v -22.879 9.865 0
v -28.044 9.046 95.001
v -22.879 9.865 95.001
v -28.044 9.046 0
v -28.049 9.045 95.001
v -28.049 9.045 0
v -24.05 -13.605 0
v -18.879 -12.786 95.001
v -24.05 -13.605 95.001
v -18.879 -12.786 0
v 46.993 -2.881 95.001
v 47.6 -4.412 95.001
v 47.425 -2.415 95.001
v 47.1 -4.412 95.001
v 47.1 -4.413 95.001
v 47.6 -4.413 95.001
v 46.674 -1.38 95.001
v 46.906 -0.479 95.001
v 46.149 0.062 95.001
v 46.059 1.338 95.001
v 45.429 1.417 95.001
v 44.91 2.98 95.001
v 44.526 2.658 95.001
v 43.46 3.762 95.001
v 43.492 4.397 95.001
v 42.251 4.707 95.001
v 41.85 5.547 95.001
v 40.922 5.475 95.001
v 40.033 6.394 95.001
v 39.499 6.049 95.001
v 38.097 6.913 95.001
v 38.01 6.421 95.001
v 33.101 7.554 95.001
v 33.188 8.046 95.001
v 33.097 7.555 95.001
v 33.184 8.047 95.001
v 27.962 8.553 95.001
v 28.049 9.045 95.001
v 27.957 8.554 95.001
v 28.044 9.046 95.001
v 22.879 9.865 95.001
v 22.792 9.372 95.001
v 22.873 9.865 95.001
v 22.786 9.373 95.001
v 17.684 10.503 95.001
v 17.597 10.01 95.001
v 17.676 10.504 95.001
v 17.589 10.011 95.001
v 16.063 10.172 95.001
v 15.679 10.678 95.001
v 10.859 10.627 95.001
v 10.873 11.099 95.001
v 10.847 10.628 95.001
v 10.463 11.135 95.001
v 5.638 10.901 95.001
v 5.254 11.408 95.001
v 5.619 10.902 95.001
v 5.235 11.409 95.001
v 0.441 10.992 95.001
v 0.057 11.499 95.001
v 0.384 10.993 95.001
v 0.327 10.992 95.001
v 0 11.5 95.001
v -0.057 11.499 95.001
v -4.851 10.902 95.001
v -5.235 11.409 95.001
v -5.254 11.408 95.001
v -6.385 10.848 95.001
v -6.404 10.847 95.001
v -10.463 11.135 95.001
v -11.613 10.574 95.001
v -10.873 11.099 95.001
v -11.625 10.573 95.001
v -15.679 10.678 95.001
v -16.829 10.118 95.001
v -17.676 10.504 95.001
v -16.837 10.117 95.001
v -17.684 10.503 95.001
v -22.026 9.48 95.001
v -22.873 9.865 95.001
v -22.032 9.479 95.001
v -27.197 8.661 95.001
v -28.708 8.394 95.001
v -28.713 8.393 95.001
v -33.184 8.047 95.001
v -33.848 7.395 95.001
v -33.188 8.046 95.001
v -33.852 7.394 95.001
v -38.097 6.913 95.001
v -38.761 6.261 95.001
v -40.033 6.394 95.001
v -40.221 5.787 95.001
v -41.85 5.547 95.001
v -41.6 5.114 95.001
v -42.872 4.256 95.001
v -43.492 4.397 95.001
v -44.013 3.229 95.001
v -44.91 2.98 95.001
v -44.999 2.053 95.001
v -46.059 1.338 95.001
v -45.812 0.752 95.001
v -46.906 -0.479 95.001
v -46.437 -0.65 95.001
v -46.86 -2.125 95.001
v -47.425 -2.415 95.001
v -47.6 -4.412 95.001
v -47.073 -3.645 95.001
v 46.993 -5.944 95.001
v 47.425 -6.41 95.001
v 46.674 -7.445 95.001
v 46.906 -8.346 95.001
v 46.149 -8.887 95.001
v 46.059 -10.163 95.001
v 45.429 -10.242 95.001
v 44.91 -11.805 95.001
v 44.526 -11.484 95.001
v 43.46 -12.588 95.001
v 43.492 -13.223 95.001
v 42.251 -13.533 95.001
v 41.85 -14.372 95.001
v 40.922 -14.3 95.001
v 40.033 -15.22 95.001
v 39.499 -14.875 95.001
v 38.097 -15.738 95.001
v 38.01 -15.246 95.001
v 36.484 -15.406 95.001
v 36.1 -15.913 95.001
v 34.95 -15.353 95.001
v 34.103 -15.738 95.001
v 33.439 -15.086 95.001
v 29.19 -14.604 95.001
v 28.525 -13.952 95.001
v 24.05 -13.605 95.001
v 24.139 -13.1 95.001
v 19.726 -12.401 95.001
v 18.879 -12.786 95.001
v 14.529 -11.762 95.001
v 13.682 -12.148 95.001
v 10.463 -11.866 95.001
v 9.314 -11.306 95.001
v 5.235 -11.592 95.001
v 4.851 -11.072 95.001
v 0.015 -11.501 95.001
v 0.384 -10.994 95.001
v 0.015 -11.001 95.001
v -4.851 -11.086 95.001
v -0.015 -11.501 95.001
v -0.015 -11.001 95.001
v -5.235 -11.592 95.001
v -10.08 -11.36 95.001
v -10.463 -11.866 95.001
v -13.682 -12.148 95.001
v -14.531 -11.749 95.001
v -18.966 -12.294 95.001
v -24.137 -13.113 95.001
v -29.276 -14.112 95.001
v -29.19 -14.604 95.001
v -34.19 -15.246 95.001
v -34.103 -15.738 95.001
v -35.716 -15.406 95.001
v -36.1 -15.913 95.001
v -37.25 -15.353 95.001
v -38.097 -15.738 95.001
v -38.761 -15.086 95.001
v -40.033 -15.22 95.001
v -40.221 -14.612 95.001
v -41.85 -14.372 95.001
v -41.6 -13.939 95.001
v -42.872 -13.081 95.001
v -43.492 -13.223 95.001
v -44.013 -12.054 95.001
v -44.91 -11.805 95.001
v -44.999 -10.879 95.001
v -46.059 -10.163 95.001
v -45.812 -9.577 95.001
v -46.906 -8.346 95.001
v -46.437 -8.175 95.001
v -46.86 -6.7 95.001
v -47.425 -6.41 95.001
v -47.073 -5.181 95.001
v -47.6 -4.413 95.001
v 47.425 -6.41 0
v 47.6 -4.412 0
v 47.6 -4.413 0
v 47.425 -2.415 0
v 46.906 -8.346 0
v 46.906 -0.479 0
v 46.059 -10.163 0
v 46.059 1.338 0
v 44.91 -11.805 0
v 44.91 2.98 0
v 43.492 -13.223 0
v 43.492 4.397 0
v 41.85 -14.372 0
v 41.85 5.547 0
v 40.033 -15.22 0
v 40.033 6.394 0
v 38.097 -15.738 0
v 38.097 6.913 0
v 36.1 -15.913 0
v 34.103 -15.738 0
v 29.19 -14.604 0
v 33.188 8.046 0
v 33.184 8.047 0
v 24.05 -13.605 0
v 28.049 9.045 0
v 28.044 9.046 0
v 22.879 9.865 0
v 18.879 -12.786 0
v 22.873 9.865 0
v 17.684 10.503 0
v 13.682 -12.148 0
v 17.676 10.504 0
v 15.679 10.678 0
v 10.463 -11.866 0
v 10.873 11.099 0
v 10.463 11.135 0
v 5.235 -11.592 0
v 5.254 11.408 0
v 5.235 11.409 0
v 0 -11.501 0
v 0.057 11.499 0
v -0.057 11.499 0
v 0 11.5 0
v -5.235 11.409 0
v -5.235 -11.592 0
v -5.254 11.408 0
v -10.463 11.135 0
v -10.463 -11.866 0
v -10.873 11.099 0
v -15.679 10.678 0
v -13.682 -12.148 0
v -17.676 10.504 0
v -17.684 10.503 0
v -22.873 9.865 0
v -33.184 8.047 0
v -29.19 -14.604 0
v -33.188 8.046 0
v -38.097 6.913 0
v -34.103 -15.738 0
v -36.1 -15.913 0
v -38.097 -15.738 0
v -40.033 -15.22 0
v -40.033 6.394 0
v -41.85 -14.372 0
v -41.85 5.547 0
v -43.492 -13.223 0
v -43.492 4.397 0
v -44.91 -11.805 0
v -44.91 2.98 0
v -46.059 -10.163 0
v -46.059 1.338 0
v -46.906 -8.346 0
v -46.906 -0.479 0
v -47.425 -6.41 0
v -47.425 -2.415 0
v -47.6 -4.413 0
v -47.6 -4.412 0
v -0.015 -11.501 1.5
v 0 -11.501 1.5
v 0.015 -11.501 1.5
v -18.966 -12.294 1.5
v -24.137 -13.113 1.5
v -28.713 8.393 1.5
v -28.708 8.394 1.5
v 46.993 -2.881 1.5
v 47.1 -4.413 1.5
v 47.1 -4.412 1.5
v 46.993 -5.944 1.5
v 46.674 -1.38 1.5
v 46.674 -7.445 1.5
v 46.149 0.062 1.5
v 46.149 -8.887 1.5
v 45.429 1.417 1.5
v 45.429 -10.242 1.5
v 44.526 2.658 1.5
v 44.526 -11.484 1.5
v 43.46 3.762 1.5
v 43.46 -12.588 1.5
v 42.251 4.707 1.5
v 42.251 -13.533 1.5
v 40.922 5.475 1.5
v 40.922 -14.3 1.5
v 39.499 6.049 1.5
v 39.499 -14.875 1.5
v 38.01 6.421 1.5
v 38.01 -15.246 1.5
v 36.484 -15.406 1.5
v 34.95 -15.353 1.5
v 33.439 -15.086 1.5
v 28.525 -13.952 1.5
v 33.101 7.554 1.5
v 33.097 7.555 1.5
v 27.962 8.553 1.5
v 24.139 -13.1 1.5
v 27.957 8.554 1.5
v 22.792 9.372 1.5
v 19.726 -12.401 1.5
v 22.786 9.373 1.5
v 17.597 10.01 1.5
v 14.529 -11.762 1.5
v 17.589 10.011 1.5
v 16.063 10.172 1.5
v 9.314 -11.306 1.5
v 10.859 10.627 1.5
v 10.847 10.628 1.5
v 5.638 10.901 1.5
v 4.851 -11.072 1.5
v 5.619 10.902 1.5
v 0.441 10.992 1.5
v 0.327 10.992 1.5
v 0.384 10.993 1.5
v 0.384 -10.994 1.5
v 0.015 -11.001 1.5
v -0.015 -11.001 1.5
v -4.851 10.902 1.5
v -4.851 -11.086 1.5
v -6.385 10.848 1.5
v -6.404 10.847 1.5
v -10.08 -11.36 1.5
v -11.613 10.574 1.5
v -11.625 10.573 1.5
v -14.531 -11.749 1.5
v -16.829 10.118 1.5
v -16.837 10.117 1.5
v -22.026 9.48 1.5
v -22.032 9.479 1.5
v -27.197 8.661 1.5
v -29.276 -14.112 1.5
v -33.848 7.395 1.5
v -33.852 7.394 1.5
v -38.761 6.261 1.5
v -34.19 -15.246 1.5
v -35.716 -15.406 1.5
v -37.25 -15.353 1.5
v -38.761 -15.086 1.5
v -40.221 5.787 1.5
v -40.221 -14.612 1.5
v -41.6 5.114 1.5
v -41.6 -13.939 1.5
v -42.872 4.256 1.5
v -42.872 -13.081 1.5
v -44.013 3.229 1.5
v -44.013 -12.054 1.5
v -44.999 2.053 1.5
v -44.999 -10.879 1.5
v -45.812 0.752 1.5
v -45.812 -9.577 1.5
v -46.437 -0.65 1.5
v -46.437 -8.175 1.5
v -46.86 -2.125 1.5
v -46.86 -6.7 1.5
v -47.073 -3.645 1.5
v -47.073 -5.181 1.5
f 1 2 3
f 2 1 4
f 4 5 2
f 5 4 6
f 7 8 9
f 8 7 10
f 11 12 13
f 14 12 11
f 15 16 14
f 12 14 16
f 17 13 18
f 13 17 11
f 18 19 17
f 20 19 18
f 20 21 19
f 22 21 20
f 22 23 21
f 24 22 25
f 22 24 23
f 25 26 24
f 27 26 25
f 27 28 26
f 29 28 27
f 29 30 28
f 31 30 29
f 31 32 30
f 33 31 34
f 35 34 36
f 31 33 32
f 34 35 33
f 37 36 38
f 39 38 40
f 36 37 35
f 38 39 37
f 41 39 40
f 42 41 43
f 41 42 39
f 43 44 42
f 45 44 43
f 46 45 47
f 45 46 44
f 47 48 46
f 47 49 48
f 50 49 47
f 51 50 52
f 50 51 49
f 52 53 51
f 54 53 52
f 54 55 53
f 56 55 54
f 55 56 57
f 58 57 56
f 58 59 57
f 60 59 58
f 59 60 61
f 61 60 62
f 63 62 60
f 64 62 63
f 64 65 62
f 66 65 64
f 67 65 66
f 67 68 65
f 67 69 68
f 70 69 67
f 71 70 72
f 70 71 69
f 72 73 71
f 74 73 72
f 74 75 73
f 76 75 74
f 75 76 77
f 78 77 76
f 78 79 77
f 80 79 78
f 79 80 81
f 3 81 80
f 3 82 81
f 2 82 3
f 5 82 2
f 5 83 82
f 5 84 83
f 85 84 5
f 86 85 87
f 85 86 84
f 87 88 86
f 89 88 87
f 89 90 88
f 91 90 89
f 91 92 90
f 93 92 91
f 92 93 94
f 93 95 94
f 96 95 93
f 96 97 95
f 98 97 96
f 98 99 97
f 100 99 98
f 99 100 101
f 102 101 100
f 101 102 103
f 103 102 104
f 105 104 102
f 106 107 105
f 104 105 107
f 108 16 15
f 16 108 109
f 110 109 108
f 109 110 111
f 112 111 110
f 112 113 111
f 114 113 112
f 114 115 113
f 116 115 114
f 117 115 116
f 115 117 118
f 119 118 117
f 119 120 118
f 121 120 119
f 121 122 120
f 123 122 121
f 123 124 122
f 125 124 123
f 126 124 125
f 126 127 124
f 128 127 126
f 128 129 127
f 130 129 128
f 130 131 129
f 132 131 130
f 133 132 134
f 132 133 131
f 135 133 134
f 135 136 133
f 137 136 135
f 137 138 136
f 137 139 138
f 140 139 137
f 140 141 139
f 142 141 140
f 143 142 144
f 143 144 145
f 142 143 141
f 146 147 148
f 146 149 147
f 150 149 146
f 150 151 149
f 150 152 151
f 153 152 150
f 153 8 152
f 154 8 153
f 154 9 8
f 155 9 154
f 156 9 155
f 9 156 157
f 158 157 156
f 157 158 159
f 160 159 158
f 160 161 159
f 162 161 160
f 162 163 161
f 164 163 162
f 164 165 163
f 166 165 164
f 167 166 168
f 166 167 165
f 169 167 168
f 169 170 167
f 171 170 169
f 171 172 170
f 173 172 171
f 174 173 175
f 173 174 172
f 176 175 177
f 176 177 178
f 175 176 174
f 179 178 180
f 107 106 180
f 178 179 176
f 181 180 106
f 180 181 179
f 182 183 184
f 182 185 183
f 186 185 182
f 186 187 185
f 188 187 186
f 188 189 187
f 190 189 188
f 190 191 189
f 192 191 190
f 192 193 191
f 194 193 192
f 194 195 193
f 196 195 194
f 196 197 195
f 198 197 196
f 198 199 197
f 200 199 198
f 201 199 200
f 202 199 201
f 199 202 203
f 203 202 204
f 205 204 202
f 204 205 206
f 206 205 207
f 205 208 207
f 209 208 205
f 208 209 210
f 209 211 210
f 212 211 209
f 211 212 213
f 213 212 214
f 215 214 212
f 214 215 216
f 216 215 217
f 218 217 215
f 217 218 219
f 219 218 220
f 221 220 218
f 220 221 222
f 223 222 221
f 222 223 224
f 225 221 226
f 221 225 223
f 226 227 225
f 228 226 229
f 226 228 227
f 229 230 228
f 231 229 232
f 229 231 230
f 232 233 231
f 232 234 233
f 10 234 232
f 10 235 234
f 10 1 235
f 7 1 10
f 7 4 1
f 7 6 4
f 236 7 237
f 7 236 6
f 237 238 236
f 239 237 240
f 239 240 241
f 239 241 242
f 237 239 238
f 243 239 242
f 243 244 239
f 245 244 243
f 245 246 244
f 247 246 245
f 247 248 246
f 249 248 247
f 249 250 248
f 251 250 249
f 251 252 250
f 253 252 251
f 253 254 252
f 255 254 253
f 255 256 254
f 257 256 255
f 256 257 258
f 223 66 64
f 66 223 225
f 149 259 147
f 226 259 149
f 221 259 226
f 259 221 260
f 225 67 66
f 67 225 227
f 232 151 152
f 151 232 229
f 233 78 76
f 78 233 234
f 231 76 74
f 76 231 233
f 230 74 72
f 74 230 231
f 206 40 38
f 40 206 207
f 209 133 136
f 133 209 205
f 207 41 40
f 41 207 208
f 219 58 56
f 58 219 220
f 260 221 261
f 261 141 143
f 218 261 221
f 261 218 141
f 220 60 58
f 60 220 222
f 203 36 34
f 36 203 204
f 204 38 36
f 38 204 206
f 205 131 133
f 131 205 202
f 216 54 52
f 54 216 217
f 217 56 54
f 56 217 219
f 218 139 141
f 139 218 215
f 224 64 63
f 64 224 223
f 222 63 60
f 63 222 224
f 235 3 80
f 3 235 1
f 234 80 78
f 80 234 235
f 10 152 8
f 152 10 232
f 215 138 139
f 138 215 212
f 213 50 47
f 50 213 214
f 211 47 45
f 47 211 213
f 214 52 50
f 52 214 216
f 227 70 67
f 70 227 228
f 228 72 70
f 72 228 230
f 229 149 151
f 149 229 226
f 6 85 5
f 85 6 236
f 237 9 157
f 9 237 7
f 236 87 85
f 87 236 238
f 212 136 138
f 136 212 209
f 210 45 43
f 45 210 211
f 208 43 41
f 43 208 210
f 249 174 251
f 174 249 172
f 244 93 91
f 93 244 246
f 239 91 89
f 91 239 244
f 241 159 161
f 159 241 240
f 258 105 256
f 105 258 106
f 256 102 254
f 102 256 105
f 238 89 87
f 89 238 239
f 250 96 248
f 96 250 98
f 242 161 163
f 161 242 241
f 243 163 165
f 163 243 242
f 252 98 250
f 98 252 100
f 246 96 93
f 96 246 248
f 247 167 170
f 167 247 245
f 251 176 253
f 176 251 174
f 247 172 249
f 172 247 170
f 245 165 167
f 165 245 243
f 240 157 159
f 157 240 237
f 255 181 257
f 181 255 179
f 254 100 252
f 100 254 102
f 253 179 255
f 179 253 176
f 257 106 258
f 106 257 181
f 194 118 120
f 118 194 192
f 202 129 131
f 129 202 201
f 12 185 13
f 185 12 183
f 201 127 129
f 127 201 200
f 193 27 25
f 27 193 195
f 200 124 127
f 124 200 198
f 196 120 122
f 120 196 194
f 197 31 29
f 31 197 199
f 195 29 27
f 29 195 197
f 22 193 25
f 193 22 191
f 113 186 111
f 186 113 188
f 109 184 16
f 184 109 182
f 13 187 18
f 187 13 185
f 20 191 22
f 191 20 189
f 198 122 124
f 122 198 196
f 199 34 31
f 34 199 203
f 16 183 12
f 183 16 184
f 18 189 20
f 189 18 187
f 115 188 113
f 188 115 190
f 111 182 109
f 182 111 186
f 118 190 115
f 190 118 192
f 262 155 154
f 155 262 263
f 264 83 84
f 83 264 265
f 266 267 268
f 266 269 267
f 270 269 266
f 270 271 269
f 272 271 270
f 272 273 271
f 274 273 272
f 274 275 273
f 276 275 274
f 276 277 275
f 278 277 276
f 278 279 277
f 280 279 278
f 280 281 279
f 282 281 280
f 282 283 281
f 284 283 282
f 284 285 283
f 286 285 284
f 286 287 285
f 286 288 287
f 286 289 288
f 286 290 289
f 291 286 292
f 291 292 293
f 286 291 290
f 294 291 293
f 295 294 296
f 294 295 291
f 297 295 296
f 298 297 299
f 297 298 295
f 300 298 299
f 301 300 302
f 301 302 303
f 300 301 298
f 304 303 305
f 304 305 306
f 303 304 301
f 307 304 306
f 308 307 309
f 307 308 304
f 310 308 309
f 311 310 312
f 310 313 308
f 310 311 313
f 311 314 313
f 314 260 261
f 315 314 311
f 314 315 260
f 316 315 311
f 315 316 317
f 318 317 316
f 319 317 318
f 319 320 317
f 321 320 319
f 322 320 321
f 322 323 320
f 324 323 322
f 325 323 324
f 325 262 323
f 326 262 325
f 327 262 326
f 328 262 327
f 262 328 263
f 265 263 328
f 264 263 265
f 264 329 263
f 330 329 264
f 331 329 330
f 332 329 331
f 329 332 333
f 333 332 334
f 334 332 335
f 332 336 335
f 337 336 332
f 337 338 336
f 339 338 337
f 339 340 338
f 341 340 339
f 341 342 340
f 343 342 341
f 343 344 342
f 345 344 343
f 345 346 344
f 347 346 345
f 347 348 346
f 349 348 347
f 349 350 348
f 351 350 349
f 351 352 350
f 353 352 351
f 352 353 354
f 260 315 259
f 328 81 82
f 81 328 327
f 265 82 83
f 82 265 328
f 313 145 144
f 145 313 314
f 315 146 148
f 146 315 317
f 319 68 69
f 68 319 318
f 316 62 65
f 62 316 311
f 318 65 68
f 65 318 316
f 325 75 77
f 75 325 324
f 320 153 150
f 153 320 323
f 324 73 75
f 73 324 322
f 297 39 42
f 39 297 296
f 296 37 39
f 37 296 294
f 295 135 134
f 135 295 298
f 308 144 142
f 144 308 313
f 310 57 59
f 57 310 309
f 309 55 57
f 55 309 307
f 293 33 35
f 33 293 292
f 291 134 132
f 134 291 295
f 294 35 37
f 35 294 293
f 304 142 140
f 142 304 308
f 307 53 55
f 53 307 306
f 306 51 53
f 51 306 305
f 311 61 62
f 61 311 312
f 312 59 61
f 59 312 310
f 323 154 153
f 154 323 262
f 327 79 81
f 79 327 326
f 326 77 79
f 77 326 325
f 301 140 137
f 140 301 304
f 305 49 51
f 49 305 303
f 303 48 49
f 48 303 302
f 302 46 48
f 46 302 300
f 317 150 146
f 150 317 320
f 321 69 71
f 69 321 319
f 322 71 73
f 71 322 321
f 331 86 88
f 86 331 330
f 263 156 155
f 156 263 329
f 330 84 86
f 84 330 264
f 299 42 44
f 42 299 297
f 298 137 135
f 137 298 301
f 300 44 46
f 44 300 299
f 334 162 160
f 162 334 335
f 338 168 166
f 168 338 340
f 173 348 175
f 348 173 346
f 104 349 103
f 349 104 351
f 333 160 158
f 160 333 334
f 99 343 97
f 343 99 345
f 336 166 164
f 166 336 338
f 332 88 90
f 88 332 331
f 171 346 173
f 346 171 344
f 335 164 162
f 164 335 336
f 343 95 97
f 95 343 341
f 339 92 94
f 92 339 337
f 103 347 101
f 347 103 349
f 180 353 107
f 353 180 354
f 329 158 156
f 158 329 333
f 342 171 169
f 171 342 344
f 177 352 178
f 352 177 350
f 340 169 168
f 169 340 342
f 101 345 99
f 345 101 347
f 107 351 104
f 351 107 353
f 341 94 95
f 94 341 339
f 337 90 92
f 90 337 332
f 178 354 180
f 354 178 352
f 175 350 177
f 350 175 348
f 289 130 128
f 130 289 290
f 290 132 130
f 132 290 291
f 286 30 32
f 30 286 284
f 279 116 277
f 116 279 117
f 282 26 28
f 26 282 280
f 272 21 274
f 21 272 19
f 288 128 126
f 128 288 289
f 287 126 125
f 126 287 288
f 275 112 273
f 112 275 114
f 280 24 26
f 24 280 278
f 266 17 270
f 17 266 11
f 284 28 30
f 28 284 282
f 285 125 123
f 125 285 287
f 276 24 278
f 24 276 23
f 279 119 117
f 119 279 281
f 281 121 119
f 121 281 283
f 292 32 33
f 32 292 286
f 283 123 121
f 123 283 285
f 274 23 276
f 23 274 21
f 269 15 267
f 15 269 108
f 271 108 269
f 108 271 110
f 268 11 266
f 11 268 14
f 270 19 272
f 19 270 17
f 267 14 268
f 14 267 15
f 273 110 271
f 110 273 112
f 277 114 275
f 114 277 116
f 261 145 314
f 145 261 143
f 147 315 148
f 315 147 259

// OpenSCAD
LENGTH    =  93 +2.3 -1.1;
WIDTH     =  22;
HEIGHT    =  95 +1   -1;
THICKNESS =   1.5;
THICKNESS_W = 0.5;

R         = 150;

ATOM = 0.001;

fn = $preview ? 50: 180;
$fn = fn;

module spine() {
    translate([0, -R, 0])
    intersection() {
        difference() {
            cylinder(r=R, h=HEIGHT);
            cylinder(r=R-ATOM, h=HEIGHT*3, center=true);
        }
        
        translate([0, R*.75, 0])
        cube([LENGTH-WIDTH, R, HEIGHT*3], center=true);
    }
}

module body() {
    difference() {
        minkowski() {
            spine();
            cylinder(d=WIDTH + THICKNESS_W*2, h=ATOM, $fn=fn/5);
        }

        translate([0, 0, THICKNESS])
        minkowski() {
            spine();
            cylinder(d=WIDTH, h=ATOM, $fn=fn/4);
        }

if(0)
        translate([0, 0, -THICKNESS])
        minkowski() {
            spine();
            cylinder(d=WIDTH - THICKNESS, h=ATOM, $fn=fn/4);
        }

    }
}

SLIT = 3;

module mesher() {
    dx = (LENGTH-WIDTH) / 2;
    nx = 6;
    h = HEIGHT*.965 / 2;
    for (i=[0:4]) {
        for (j=[-nx/3-.5:nx/3+.5]) {
            translate([dx/nx*j  -SLIT/2, -WIDTH, h/2*(i-abs(j+10)%2/2 -.1) -ATOM])
            cube([SLIT, WIDTH*2, h/2.750 + ATOM*2]);
        }
    }
}

difference() {
    body();

    translate([0, -WIDTH/2, HEIGHT/2+THICKNESS])
    cube([.03, WIDTH, HEIGHT], center=true);
}
